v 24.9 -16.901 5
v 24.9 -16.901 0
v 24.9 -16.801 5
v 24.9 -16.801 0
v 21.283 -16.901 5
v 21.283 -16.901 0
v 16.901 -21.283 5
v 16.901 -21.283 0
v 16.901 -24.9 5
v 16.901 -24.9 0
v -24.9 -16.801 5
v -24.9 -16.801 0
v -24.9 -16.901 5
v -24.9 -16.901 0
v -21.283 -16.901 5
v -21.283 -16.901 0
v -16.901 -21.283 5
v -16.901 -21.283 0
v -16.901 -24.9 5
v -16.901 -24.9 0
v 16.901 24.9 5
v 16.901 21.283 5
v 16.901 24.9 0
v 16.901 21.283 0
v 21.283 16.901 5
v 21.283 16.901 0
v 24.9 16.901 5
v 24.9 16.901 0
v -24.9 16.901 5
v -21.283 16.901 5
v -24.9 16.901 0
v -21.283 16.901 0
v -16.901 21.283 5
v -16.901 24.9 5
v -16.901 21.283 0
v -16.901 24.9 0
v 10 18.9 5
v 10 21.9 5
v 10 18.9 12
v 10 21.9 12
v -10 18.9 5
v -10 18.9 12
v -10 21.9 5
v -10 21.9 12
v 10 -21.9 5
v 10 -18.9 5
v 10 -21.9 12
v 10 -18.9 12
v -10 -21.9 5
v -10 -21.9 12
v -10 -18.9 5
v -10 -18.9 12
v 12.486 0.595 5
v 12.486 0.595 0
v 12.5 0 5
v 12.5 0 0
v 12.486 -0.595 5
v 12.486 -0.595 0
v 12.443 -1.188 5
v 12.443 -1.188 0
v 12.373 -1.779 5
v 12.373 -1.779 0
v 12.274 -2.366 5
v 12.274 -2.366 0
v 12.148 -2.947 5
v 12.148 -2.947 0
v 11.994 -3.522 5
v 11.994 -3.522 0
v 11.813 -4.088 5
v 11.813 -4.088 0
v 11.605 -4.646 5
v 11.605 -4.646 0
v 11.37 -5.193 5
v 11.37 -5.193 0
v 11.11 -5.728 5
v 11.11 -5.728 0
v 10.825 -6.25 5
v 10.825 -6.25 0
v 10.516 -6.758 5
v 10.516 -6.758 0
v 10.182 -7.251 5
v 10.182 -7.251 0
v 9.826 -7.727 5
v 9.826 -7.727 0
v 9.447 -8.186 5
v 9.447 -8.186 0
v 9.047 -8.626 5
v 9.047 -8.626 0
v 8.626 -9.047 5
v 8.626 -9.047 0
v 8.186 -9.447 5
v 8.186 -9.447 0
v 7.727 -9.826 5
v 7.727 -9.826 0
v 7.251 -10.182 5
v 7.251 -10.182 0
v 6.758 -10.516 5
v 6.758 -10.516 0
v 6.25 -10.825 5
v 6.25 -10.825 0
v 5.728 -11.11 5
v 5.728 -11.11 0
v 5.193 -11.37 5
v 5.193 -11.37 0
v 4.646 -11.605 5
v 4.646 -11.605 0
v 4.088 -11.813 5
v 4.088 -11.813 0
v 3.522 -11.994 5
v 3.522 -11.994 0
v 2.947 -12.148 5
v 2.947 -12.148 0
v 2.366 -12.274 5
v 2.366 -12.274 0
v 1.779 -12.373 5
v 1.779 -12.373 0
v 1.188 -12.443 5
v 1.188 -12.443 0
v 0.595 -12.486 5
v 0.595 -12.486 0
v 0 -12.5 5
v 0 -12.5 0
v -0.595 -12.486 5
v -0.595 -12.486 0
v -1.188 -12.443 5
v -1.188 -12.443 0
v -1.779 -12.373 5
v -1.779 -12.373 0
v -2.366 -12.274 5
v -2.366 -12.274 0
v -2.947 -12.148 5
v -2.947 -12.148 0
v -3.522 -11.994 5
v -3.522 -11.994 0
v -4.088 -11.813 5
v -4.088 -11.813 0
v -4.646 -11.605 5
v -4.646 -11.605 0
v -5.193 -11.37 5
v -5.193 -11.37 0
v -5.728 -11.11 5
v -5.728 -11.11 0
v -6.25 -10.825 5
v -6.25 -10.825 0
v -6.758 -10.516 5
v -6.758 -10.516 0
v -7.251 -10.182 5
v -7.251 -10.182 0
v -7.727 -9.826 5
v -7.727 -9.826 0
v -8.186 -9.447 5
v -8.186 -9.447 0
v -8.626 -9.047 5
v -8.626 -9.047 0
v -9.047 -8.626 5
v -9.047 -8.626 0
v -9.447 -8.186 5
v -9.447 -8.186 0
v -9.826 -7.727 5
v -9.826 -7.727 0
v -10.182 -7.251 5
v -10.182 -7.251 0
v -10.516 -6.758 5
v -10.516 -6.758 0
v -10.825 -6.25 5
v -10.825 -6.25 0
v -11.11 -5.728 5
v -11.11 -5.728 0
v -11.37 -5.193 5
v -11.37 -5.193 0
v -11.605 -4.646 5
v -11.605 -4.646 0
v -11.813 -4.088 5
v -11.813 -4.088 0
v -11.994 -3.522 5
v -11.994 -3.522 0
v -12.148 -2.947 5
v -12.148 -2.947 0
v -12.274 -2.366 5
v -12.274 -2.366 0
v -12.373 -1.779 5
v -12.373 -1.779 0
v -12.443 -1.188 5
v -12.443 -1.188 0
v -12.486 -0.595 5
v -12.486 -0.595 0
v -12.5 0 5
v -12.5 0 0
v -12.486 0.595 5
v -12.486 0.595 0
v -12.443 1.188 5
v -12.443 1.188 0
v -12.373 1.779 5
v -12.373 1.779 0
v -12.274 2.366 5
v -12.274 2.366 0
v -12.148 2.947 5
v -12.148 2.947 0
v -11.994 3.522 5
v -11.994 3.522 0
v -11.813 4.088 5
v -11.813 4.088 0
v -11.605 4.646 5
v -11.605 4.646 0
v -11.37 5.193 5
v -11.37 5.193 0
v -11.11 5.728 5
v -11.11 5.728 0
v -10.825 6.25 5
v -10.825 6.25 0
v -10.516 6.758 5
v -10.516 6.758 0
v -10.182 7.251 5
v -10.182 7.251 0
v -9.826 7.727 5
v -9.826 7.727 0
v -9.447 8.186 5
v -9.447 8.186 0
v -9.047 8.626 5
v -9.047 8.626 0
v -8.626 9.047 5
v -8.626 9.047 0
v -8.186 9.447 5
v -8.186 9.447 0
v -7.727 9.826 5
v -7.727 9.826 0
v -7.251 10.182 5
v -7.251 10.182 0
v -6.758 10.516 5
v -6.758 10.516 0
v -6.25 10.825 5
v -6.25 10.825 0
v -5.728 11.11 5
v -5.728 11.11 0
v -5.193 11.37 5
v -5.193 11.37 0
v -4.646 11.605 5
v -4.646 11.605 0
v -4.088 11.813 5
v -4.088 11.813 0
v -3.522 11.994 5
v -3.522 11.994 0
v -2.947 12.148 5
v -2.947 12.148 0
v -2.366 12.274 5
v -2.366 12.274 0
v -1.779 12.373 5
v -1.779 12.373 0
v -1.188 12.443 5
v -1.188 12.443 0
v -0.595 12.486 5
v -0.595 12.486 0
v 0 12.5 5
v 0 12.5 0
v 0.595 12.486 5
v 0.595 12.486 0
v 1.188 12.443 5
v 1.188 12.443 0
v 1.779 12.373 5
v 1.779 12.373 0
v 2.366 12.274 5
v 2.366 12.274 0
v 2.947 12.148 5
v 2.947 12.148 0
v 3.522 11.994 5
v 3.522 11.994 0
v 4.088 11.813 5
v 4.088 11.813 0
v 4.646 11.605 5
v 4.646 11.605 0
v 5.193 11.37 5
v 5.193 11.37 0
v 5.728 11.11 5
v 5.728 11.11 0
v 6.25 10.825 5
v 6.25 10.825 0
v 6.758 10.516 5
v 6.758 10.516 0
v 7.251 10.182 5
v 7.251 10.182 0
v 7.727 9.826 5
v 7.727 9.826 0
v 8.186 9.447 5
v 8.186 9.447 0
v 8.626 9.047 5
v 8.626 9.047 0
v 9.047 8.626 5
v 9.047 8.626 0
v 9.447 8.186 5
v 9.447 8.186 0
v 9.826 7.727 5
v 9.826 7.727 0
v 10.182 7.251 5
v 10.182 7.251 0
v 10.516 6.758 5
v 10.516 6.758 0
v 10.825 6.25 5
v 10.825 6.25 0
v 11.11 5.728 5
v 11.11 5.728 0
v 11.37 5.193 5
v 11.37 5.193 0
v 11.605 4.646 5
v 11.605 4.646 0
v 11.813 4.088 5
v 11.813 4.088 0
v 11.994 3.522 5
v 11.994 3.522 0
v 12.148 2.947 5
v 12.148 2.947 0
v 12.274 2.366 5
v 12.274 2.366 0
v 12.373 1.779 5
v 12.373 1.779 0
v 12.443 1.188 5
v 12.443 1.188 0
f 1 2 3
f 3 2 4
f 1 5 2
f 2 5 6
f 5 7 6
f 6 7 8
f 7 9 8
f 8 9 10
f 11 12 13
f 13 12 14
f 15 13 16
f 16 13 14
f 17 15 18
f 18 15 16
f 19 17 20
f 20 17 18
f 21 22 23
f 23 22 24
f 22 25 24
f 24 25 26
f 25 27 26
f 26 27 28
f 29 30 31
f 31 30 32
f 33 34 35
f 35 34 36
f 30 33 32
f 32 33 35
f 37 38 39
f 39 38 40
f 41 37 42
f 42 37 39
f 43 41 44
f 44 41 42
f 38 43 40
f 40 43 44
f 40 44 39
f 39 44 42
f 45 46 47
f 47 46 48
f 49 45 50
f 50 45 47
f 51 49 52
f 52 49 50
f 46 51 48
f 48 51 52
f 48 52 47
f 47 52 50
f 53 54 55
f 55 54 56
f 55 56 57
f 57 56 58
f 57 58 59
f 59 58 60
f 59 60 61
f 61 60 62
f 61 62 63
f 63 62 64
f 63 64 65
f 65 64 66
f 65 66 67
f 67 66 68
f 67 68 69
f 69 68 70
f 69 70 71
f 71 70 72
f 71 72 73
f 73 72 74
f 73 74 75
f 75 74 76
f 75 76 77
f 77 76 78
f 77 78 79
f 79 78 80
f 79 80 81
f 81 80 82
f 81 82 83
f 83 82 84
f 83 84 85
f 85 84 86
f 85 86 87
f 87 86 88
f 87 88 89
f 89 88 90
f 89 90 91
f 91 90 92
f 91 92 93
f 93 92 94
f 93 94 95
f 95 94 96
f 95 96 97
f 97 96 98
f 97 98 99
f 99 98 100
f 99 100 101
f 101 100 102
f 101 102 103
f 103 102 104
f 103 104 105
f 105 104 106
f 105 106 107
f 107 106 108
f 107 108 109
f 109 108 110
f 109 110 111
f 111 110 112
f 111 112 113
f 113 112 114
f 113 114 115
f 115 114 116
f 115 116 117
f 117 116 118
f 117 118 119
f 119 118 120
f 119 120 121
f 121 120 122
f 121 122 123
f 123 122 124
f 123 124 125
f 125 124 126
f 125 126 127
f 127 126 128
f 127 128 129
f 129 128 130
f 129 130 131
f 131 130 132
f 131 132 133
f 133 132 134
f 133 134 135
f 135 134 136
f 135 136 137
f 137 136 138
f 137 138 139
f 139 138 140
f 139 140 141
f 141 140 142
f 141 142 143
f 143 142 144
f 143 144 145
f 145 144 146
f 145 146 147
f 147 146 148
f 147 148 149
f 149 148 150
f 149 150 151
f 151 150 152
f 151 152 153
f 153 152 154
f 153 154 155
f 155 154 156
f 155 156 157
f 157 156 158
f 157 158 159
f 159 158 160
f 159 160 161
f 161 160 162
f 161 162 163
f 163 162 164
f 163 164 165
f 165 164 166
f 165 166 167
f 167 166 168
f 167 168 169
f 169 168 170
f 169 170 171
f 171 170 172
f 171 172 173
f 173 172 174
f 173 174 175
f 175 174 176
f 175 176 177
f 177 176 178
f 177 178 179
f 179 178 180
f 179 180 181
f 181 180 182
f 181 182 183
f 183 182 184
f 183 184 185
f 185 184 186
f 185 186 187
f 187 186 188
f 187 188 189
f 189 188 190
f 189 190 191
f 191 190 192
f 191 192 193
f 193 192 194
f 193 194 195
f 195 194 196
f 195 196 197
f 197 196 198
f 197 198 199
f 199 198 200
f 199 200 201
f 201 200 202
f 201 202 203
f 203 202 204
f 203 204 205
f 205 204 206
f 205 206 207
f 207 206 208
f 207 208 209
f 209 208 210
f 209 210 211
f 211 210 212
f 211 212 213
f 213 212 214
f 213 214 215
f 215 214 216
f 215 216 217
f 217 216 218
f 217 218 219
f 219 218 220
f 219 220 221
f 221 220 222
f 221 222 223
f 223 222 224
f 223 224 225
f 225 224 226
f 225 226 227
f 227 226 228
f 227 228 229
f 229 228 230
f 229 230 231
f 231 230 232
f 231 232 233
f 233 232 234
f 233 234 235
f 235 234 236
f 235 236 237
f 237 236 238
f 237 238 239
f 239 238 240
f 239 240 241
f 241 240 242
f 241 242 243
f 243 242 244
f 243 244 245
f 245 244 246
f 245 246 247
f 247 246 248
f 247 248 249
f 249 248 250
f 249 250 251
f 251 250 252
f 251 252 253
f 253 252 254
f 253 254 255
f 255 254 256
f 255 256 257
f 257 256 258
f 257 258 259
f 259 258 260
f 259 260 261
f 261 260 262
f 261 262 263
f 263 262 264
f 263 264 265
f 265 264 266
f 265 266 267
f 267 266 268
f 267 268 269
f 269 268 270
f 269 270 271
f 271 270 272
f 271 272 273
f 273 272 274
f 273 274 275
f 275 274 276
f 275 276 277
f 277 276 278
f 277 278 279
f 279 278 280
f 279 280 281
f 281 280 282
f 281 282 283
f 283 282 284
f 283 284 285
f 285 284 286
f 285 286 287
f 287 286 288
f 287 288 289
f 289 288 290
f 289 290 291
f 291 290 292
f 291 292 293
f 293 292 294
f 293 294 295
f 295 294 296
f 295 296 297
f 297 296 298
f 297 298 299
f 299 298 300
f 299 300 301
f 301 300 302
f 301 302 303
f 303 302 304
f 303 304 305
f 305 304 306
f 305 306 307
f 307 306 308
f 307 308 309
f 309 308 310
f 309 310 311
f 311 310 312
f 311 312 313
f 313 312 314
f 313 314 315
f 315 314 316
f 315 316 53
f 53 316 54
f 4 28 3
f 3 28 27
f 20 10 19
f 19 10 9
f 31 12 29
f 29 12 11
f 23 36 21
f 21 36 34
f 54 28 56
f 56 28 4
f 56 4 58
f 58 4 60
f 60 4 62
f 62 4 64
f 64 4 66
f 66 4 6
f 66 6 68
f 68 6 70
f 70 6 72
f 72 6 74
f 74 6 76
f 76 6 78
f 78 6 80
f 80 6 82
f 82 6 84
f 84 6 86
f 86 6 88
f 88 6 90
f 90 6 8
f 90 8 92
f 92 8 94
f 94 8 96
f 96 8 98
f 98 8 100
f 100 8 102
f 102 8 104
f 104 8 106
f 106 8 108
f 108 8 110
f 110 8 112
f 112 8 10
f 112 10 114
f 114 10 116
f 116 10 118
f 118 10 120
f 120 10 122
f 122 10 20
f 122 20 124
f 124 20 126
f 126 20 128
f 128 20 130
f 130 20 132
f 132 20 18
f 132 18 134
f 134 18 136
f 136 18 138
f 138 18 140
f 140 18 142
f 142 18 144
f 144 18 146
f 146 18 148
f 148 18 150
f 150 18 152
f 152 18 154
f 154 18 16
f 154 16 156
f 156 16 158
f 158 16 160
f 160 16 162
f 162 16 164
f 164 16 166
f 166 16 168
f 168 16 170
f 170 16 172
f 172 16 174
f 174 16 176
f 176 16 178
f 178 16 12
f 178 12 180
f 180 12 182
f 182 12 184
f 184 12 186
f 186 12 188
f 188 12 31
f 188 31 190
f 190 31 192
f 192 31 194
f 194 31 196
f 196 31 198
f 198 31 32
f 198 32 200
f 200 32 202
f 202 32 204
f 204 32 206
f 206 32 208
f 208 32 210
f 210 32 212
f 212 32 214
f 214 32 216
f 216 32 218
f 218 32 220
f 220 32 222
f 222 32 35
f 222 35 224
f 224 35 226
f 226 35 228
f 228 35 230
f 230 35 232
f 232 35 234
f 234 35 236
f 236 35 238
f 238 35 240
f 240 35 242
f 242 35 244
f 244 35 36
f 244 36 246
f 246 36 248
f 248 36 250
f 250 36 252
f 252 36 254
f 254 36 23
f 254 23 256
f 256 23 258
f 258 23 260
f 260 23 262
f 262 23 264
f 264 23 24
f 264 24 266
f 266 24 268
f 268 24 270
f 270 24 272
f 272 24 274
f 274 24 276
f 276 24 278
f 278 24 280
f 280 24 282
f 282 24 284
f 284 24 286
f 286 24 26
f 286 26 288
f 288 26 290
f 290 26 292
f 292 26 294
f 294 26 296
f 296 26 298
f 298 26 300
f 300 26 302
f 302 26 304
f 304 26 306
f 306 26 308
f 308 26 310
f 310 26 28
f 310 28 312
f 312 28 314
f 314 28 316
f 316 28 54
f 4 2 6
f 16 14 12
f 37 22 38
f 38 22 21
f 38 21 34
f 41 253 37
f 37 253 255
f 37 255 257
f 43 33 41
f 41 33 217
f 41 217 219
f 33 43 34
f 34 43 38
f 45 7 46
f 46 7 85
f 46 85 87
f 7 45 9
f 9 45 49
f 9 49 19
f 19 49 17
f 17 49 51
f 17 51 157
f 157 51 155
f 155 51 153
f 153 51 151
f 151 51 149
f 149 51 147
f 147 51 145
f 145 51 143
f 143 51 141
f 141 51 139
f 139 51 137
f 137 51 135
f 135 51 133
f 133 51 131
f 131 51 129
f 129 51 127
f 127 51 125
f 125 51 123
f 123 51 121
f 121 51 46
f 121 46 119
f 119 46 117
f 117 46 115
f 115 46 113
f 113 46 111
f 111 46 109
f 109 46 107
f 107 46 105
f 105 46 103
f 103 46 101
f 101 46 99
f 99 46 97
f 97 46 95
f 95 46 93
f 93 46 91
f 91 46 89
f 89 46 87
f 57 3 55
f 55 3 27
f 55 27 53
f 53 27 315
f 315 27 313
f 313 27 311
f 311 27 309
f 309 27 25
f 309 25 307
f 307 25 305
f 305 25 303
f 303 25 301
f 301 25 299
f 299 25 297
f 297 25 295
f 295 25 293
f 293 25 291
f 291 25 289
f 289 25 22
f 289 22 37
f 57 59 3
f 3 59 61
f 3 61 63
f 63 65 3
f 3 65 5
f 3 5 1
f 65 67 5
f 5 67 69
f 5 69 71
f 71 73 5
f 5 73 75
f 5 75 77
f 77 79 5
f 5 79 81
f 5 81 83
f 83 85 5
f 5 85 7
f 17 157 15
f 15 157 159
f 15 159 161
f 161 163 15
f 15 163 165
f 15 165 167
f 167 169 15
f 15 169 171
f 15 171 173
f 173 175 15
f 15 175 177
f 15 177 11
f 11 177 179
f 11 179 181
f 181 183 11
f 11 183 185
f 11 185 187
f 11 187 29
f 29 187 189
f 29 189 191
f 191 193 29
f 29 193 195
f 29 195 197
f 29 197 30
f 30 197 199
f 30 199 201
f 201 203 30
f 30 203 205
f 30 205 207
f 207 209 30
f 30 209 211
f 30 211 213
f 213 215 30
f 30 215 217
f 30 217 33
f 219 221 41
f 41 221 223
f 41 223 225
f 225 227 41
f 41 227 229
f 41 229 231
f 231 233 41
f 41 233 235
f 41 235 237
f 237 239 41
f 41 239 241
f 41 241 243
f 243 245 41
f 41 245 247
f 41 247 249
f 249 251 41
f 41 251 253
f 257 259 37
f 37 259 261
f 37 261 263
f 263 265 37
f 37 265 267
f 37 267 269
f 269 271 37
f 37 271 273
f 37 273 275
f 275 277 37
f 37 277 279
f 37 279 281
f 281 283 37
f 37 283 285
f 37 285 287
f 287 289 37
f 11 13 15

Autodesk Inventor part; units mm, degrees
ref_plane "YZ Plane" through (0, 0, 0) normal (1, 0, 0) x (0, 1, 0)
ref_plane "XZ Plane" through (0, 0, 0) normal (0, 1, 0) x (-1, 0, 0)
ref_plane "XY Plane" through (0, 0, 0) normal (0, 0, 1) x (1, 0, 0)
sketch "Sketch1" plane through (0, 0, 0) normal (0, 0, 1) x (1, 0, 0)
  line L0 (-34.86, 0) -> (34.86, 0) construction
  line L1 (0, -34.86) -> (0, 34.86) construction
  line L2 (0, 0) -> (11.1575, 11.1575) construction
  line L3 (0, 0) -> (15.7791, 0) construction
  line L4 (0, 24.9) -> (16.8009, 24.9)
  line L5 (16.8009, 24.9) -> (16.8009, 21.2415)
  line L6 (16.8009, 21.2415) -> (19.0212, 19.0212)
  line L7 (24.9, 0) -> (24.9, 16.8009)
  line L8 (24.9, 16.8009) -> (21.2415, 16.8009)
  line L9 (21.2415, 16.8009) -> (19.0212, 19.0212)
  line L10 (0, -24.9) -> (16.8009, -24.9)
  line L11 (16.8009, -24.9) -> (16.8009, -21.2415)
  line L12 (16.8009, -21.2415) -> (19.0212, -19.0212)
  line L13 (24.9, 0) -> (24.9, -16.8009)
  line L14 (24.9, -16.8009) -> (21.2415, -16.8009)
  line L15 (21.2415, -16.8009) -> (19.0212, -19.0212)
  line L16 (0, 24.9) -> (-16.8009, 24.9)
  line L17 (-16.8009, 24.9) -> (-16.8009, 21.2415)
  line L18 (-16.8009, 21.2415) -> (-19.0212, 19.0212)
  line L19 (-24.9, 16.8009) -> (-21.2415, 16.8009)
  line L20 (-21.2415, 16.8009) -> (-19.0212, 19.0212)
  line L21 (0, -24.9) -> (-16.8009, -24.9)
  line L22 (-16.8009, -24.9) -> (-16.8009, -21.2415)
  line L23 (-16.8009, -21.2415) -> (-19.0212, -19.0212)
  line L24 (-21.2415, -16.8009) -> (-19.0212, -19.0212)
  line L25 (-24.9, -16.8009) -> (-21.2415, -16.8009)
  line L26 (-24.9, 0) -> (-24.9, -16.8009)
  line L27 (-24.9, 0) -> (-24.9, 16.8009)
  circle A0 centre (0, 0) radius 12.5
  dimension "d0" = 45
  dimension "d2" = 24.9
  dimension "d3" = 3.14
  dimension "d4" = 26.9
  dimension "d5" = 25
extrude "Extrusion1" add sketch "Sketch1" along normal blind 5
sketch "Sketch2" plane through (0, 0, 5) normal (0, 0, 1) x (1, 0, 0)
  circle A0 centre (0, 0) radius 12.5 projected
  line L0 (16.8009, 24.9) -> (-16.8009, 24.9) projected
  line L1 (-16.8009, 24.9) -> (-16.8009, 21.2415) projected
  line L2 (-16.8009, 21.2415) -> (-21.2415, 16.8009) projected
  line L3 (-21.2415, 16.8009) -> (-24.9, 16.8009) projected
  line L4 (-24.9, 16.8009) -> (-24.9, -16.8009) projected
  line L5 (-24.9, -16.8009) -> (-21.2415, -16.8009) projected
  line L6 (-21.2415, -16.8009) -> (-16.8009, -21.2415) projected
  line L7 (-16.8009, -21.2415) -> (-16.8009, -24.9) projected
  line L8 (-16.8009, -24.9) -> (16.8009, -24.9) projected
  line L9 (16.8009, -24.9) -> (16.8009, -21.2415) projected
  line L10 (16.8009, -21.2415) -> (21.2415, -16.8009) projected
  line L11 (21.2415, -16.8009) -> (24.9, -16.8009) projected
  line L12 (24.9, -16.8009) -> (24.9, 16.8009) projected
  line L13 (24.9, 16.8009) -> (21.2415, 16.8009) projected
  line L14 (21.2415, 16.8009) -> (16.8009, 21.2415) projected
  line L15 (16.8009, 21.2415) -> (16.8009, 24.9) projected
  line L16 (-34.86, 0) -> (34.86, 0) construction
  line L17 (0, -34.86) -> (0, 34.86) construction
  line L18 (-10, 21.9) -> (10, 21.9)
  line L19 (10, 21.9) -> (10, 18.9)
  line L20 (10, 18.9) -> (-10, 18.9)
  line L21 (-10, 18.9) -> (-10, 21.9)
  line L22 (-10, -21.9) -> (10, -21.9)
  line L23 (10, -21.9) -> (10, -18.9)
  line L24 (10, -18.9) -> (-10, -18.9)
  line L25 (-10, -18.9) -> (-10, -21.9)
  dimension "d8" = 20
  dimension "d9" = 3
  dimension "d10" = 3
extrude "Extrusion2" add sketch "Sketch2" along normal blind 7 contours L18 L19 L20 L21 | L25 L24 L23 L22
chamfer "Fase1" [suppressed]
chamfer "Fase2" [suppressed]
sketch "Sketch4" plane through (0, 0, 0) normal (0, 0, -1) x (-1, 0, 0)
  circle A0 centre (0, 0) radius 12.5 construction
  line L0 (16.8009, 24.9) -> (-16.8009, 24.9) construction
  line L1 (-16.8009, 24.9) -> (-16.8009, 21.2415) projected
  line L2 (-16.8009, 21.2415) -> (-21.2415, 16.8009) projected
  line L3 (-21.2415, 16.8009) -> (-24.9, 16.8009) projected
  line L4 (-24.9, 16.8009) -> (-24.9, -16.8009) construction
  line L5 (-24.9, -16.8009) -> (-21.2415, -16.8009) projected
  line L6 (-21.2415, -16.8009) -> (-16.8009, -21.2415) projected
  line L7 (-16.8009, -21.2415) -> (-16.8009, -24.9) projected
  line L8 (-16.8009, -24.9) -> (16.8009, -24.9) construction
  line L9 (16.8009, -24.9) -> (16.8009, -21.2415) projected
  line L10 (16.8009, -21.2415) -> (21.2415, -16.8009) projected
  line L11 (21.2415, -16.8009) -> (24.9, -16.8009) projected
  line L12 (24.9, -16.8009) -> (24.9, 16.8009) construction
  line L13 (24.9, 16.8009) -> (21.2415, 16.8009) projected
  line L14 (21.2415, 16.8009) -> (16.8009, 21.2415) projected
  line L15 (16.8009, 21.2415) -> (16.8009, 24.9) projected
  line L16 (-16.9009, 25) -> (16.9009, 25) construction
  line L17 (16.9009, 25) -> (16.9009, 21.2829)
  line L18 (16.9009, 21.2829) -> (21.2829, 16.9009)
  line L19 (21.2829, 16.9009) -> (25, 16.9009)
  line L20 (25, 16.9009) -> (25, -16.9009) construction
  line L21 (25, -16.9009) -> (21.2829, -16.9009)
  line L22 (21.2829, -16.9009) -> (16.9009, -21.2829)
  line L23 (16.9009, -21.2829) -> (16.9009, -25)
  line L24 (16.9009, -25) -> (-16.9009, -25) construction
  line L25 (-16.9009, -25) -> (-16.9009, -21.2829)
  line L26 (-16.9009, -21.2829) -> (-21.2829, -16.9009)
  line L27 (-21.2829, -16.9009) -> (-25, -16.9009)
  line L28 (-25, -16.9009) -> (-25, 16.9009) construction
  line L29 (-25, 16.9009) -> (-21.2829, 16.9009)
  line L30 (-21.2829, 16.9009) -> (-16.9009, 21.2829)
  line L31 (-16.9009, 21.2829) -> (-16.9009, 25)
  line L32 (-24.9, -16.8009) -> (-24.9, 16.8009) projected
  line L33 (-24.9, 16.8009) -> (-24.9, 16.9009)
  line L34 (-16.8009, 24.9) -> (-16.9009, 24.9)
  line L35 (-16.8009, 24.9) -> (16.8009, 24.9) projected
  line L36 (16.8009, 24.9) -> (16.9009, 24.9)
  line L37 (24.9, 16.8009) -> (24.9, 16.9009)
  line L38 (24.9, 16.8009) -> (24.9, -16.8009) projected
  line L39 (24.9, -16.8009) -> (24.9, -16.9009)
  line L40 (16.8009, -24.9) -> (-16.8009, -24.9) projected
  line L41 (16.8009, -24.9) -> (16.9009, -24.9)
  line L42 (-16.8009, -24.9) -> (-16.9009, -24.9)
  line L43 (-24.9, -16.8009) -> (-24.9, -16.9009)
  dimension "d19" = 0.1
extrude "IM_offset" add sketch "Sketch4" against normal up to surface (5 mm away) contours L1 L2 L3 L33 L29 L30 L31 L34 | L36 L17 L18 L19 L37 L13 L14 L15 | L5 L6 L7 L42 L25 L26 L27 L43 | L39 L21 L22 L23 L41 L9 L10 L11
properties part number "20_Cube_insert_Sample_holder_v3"
